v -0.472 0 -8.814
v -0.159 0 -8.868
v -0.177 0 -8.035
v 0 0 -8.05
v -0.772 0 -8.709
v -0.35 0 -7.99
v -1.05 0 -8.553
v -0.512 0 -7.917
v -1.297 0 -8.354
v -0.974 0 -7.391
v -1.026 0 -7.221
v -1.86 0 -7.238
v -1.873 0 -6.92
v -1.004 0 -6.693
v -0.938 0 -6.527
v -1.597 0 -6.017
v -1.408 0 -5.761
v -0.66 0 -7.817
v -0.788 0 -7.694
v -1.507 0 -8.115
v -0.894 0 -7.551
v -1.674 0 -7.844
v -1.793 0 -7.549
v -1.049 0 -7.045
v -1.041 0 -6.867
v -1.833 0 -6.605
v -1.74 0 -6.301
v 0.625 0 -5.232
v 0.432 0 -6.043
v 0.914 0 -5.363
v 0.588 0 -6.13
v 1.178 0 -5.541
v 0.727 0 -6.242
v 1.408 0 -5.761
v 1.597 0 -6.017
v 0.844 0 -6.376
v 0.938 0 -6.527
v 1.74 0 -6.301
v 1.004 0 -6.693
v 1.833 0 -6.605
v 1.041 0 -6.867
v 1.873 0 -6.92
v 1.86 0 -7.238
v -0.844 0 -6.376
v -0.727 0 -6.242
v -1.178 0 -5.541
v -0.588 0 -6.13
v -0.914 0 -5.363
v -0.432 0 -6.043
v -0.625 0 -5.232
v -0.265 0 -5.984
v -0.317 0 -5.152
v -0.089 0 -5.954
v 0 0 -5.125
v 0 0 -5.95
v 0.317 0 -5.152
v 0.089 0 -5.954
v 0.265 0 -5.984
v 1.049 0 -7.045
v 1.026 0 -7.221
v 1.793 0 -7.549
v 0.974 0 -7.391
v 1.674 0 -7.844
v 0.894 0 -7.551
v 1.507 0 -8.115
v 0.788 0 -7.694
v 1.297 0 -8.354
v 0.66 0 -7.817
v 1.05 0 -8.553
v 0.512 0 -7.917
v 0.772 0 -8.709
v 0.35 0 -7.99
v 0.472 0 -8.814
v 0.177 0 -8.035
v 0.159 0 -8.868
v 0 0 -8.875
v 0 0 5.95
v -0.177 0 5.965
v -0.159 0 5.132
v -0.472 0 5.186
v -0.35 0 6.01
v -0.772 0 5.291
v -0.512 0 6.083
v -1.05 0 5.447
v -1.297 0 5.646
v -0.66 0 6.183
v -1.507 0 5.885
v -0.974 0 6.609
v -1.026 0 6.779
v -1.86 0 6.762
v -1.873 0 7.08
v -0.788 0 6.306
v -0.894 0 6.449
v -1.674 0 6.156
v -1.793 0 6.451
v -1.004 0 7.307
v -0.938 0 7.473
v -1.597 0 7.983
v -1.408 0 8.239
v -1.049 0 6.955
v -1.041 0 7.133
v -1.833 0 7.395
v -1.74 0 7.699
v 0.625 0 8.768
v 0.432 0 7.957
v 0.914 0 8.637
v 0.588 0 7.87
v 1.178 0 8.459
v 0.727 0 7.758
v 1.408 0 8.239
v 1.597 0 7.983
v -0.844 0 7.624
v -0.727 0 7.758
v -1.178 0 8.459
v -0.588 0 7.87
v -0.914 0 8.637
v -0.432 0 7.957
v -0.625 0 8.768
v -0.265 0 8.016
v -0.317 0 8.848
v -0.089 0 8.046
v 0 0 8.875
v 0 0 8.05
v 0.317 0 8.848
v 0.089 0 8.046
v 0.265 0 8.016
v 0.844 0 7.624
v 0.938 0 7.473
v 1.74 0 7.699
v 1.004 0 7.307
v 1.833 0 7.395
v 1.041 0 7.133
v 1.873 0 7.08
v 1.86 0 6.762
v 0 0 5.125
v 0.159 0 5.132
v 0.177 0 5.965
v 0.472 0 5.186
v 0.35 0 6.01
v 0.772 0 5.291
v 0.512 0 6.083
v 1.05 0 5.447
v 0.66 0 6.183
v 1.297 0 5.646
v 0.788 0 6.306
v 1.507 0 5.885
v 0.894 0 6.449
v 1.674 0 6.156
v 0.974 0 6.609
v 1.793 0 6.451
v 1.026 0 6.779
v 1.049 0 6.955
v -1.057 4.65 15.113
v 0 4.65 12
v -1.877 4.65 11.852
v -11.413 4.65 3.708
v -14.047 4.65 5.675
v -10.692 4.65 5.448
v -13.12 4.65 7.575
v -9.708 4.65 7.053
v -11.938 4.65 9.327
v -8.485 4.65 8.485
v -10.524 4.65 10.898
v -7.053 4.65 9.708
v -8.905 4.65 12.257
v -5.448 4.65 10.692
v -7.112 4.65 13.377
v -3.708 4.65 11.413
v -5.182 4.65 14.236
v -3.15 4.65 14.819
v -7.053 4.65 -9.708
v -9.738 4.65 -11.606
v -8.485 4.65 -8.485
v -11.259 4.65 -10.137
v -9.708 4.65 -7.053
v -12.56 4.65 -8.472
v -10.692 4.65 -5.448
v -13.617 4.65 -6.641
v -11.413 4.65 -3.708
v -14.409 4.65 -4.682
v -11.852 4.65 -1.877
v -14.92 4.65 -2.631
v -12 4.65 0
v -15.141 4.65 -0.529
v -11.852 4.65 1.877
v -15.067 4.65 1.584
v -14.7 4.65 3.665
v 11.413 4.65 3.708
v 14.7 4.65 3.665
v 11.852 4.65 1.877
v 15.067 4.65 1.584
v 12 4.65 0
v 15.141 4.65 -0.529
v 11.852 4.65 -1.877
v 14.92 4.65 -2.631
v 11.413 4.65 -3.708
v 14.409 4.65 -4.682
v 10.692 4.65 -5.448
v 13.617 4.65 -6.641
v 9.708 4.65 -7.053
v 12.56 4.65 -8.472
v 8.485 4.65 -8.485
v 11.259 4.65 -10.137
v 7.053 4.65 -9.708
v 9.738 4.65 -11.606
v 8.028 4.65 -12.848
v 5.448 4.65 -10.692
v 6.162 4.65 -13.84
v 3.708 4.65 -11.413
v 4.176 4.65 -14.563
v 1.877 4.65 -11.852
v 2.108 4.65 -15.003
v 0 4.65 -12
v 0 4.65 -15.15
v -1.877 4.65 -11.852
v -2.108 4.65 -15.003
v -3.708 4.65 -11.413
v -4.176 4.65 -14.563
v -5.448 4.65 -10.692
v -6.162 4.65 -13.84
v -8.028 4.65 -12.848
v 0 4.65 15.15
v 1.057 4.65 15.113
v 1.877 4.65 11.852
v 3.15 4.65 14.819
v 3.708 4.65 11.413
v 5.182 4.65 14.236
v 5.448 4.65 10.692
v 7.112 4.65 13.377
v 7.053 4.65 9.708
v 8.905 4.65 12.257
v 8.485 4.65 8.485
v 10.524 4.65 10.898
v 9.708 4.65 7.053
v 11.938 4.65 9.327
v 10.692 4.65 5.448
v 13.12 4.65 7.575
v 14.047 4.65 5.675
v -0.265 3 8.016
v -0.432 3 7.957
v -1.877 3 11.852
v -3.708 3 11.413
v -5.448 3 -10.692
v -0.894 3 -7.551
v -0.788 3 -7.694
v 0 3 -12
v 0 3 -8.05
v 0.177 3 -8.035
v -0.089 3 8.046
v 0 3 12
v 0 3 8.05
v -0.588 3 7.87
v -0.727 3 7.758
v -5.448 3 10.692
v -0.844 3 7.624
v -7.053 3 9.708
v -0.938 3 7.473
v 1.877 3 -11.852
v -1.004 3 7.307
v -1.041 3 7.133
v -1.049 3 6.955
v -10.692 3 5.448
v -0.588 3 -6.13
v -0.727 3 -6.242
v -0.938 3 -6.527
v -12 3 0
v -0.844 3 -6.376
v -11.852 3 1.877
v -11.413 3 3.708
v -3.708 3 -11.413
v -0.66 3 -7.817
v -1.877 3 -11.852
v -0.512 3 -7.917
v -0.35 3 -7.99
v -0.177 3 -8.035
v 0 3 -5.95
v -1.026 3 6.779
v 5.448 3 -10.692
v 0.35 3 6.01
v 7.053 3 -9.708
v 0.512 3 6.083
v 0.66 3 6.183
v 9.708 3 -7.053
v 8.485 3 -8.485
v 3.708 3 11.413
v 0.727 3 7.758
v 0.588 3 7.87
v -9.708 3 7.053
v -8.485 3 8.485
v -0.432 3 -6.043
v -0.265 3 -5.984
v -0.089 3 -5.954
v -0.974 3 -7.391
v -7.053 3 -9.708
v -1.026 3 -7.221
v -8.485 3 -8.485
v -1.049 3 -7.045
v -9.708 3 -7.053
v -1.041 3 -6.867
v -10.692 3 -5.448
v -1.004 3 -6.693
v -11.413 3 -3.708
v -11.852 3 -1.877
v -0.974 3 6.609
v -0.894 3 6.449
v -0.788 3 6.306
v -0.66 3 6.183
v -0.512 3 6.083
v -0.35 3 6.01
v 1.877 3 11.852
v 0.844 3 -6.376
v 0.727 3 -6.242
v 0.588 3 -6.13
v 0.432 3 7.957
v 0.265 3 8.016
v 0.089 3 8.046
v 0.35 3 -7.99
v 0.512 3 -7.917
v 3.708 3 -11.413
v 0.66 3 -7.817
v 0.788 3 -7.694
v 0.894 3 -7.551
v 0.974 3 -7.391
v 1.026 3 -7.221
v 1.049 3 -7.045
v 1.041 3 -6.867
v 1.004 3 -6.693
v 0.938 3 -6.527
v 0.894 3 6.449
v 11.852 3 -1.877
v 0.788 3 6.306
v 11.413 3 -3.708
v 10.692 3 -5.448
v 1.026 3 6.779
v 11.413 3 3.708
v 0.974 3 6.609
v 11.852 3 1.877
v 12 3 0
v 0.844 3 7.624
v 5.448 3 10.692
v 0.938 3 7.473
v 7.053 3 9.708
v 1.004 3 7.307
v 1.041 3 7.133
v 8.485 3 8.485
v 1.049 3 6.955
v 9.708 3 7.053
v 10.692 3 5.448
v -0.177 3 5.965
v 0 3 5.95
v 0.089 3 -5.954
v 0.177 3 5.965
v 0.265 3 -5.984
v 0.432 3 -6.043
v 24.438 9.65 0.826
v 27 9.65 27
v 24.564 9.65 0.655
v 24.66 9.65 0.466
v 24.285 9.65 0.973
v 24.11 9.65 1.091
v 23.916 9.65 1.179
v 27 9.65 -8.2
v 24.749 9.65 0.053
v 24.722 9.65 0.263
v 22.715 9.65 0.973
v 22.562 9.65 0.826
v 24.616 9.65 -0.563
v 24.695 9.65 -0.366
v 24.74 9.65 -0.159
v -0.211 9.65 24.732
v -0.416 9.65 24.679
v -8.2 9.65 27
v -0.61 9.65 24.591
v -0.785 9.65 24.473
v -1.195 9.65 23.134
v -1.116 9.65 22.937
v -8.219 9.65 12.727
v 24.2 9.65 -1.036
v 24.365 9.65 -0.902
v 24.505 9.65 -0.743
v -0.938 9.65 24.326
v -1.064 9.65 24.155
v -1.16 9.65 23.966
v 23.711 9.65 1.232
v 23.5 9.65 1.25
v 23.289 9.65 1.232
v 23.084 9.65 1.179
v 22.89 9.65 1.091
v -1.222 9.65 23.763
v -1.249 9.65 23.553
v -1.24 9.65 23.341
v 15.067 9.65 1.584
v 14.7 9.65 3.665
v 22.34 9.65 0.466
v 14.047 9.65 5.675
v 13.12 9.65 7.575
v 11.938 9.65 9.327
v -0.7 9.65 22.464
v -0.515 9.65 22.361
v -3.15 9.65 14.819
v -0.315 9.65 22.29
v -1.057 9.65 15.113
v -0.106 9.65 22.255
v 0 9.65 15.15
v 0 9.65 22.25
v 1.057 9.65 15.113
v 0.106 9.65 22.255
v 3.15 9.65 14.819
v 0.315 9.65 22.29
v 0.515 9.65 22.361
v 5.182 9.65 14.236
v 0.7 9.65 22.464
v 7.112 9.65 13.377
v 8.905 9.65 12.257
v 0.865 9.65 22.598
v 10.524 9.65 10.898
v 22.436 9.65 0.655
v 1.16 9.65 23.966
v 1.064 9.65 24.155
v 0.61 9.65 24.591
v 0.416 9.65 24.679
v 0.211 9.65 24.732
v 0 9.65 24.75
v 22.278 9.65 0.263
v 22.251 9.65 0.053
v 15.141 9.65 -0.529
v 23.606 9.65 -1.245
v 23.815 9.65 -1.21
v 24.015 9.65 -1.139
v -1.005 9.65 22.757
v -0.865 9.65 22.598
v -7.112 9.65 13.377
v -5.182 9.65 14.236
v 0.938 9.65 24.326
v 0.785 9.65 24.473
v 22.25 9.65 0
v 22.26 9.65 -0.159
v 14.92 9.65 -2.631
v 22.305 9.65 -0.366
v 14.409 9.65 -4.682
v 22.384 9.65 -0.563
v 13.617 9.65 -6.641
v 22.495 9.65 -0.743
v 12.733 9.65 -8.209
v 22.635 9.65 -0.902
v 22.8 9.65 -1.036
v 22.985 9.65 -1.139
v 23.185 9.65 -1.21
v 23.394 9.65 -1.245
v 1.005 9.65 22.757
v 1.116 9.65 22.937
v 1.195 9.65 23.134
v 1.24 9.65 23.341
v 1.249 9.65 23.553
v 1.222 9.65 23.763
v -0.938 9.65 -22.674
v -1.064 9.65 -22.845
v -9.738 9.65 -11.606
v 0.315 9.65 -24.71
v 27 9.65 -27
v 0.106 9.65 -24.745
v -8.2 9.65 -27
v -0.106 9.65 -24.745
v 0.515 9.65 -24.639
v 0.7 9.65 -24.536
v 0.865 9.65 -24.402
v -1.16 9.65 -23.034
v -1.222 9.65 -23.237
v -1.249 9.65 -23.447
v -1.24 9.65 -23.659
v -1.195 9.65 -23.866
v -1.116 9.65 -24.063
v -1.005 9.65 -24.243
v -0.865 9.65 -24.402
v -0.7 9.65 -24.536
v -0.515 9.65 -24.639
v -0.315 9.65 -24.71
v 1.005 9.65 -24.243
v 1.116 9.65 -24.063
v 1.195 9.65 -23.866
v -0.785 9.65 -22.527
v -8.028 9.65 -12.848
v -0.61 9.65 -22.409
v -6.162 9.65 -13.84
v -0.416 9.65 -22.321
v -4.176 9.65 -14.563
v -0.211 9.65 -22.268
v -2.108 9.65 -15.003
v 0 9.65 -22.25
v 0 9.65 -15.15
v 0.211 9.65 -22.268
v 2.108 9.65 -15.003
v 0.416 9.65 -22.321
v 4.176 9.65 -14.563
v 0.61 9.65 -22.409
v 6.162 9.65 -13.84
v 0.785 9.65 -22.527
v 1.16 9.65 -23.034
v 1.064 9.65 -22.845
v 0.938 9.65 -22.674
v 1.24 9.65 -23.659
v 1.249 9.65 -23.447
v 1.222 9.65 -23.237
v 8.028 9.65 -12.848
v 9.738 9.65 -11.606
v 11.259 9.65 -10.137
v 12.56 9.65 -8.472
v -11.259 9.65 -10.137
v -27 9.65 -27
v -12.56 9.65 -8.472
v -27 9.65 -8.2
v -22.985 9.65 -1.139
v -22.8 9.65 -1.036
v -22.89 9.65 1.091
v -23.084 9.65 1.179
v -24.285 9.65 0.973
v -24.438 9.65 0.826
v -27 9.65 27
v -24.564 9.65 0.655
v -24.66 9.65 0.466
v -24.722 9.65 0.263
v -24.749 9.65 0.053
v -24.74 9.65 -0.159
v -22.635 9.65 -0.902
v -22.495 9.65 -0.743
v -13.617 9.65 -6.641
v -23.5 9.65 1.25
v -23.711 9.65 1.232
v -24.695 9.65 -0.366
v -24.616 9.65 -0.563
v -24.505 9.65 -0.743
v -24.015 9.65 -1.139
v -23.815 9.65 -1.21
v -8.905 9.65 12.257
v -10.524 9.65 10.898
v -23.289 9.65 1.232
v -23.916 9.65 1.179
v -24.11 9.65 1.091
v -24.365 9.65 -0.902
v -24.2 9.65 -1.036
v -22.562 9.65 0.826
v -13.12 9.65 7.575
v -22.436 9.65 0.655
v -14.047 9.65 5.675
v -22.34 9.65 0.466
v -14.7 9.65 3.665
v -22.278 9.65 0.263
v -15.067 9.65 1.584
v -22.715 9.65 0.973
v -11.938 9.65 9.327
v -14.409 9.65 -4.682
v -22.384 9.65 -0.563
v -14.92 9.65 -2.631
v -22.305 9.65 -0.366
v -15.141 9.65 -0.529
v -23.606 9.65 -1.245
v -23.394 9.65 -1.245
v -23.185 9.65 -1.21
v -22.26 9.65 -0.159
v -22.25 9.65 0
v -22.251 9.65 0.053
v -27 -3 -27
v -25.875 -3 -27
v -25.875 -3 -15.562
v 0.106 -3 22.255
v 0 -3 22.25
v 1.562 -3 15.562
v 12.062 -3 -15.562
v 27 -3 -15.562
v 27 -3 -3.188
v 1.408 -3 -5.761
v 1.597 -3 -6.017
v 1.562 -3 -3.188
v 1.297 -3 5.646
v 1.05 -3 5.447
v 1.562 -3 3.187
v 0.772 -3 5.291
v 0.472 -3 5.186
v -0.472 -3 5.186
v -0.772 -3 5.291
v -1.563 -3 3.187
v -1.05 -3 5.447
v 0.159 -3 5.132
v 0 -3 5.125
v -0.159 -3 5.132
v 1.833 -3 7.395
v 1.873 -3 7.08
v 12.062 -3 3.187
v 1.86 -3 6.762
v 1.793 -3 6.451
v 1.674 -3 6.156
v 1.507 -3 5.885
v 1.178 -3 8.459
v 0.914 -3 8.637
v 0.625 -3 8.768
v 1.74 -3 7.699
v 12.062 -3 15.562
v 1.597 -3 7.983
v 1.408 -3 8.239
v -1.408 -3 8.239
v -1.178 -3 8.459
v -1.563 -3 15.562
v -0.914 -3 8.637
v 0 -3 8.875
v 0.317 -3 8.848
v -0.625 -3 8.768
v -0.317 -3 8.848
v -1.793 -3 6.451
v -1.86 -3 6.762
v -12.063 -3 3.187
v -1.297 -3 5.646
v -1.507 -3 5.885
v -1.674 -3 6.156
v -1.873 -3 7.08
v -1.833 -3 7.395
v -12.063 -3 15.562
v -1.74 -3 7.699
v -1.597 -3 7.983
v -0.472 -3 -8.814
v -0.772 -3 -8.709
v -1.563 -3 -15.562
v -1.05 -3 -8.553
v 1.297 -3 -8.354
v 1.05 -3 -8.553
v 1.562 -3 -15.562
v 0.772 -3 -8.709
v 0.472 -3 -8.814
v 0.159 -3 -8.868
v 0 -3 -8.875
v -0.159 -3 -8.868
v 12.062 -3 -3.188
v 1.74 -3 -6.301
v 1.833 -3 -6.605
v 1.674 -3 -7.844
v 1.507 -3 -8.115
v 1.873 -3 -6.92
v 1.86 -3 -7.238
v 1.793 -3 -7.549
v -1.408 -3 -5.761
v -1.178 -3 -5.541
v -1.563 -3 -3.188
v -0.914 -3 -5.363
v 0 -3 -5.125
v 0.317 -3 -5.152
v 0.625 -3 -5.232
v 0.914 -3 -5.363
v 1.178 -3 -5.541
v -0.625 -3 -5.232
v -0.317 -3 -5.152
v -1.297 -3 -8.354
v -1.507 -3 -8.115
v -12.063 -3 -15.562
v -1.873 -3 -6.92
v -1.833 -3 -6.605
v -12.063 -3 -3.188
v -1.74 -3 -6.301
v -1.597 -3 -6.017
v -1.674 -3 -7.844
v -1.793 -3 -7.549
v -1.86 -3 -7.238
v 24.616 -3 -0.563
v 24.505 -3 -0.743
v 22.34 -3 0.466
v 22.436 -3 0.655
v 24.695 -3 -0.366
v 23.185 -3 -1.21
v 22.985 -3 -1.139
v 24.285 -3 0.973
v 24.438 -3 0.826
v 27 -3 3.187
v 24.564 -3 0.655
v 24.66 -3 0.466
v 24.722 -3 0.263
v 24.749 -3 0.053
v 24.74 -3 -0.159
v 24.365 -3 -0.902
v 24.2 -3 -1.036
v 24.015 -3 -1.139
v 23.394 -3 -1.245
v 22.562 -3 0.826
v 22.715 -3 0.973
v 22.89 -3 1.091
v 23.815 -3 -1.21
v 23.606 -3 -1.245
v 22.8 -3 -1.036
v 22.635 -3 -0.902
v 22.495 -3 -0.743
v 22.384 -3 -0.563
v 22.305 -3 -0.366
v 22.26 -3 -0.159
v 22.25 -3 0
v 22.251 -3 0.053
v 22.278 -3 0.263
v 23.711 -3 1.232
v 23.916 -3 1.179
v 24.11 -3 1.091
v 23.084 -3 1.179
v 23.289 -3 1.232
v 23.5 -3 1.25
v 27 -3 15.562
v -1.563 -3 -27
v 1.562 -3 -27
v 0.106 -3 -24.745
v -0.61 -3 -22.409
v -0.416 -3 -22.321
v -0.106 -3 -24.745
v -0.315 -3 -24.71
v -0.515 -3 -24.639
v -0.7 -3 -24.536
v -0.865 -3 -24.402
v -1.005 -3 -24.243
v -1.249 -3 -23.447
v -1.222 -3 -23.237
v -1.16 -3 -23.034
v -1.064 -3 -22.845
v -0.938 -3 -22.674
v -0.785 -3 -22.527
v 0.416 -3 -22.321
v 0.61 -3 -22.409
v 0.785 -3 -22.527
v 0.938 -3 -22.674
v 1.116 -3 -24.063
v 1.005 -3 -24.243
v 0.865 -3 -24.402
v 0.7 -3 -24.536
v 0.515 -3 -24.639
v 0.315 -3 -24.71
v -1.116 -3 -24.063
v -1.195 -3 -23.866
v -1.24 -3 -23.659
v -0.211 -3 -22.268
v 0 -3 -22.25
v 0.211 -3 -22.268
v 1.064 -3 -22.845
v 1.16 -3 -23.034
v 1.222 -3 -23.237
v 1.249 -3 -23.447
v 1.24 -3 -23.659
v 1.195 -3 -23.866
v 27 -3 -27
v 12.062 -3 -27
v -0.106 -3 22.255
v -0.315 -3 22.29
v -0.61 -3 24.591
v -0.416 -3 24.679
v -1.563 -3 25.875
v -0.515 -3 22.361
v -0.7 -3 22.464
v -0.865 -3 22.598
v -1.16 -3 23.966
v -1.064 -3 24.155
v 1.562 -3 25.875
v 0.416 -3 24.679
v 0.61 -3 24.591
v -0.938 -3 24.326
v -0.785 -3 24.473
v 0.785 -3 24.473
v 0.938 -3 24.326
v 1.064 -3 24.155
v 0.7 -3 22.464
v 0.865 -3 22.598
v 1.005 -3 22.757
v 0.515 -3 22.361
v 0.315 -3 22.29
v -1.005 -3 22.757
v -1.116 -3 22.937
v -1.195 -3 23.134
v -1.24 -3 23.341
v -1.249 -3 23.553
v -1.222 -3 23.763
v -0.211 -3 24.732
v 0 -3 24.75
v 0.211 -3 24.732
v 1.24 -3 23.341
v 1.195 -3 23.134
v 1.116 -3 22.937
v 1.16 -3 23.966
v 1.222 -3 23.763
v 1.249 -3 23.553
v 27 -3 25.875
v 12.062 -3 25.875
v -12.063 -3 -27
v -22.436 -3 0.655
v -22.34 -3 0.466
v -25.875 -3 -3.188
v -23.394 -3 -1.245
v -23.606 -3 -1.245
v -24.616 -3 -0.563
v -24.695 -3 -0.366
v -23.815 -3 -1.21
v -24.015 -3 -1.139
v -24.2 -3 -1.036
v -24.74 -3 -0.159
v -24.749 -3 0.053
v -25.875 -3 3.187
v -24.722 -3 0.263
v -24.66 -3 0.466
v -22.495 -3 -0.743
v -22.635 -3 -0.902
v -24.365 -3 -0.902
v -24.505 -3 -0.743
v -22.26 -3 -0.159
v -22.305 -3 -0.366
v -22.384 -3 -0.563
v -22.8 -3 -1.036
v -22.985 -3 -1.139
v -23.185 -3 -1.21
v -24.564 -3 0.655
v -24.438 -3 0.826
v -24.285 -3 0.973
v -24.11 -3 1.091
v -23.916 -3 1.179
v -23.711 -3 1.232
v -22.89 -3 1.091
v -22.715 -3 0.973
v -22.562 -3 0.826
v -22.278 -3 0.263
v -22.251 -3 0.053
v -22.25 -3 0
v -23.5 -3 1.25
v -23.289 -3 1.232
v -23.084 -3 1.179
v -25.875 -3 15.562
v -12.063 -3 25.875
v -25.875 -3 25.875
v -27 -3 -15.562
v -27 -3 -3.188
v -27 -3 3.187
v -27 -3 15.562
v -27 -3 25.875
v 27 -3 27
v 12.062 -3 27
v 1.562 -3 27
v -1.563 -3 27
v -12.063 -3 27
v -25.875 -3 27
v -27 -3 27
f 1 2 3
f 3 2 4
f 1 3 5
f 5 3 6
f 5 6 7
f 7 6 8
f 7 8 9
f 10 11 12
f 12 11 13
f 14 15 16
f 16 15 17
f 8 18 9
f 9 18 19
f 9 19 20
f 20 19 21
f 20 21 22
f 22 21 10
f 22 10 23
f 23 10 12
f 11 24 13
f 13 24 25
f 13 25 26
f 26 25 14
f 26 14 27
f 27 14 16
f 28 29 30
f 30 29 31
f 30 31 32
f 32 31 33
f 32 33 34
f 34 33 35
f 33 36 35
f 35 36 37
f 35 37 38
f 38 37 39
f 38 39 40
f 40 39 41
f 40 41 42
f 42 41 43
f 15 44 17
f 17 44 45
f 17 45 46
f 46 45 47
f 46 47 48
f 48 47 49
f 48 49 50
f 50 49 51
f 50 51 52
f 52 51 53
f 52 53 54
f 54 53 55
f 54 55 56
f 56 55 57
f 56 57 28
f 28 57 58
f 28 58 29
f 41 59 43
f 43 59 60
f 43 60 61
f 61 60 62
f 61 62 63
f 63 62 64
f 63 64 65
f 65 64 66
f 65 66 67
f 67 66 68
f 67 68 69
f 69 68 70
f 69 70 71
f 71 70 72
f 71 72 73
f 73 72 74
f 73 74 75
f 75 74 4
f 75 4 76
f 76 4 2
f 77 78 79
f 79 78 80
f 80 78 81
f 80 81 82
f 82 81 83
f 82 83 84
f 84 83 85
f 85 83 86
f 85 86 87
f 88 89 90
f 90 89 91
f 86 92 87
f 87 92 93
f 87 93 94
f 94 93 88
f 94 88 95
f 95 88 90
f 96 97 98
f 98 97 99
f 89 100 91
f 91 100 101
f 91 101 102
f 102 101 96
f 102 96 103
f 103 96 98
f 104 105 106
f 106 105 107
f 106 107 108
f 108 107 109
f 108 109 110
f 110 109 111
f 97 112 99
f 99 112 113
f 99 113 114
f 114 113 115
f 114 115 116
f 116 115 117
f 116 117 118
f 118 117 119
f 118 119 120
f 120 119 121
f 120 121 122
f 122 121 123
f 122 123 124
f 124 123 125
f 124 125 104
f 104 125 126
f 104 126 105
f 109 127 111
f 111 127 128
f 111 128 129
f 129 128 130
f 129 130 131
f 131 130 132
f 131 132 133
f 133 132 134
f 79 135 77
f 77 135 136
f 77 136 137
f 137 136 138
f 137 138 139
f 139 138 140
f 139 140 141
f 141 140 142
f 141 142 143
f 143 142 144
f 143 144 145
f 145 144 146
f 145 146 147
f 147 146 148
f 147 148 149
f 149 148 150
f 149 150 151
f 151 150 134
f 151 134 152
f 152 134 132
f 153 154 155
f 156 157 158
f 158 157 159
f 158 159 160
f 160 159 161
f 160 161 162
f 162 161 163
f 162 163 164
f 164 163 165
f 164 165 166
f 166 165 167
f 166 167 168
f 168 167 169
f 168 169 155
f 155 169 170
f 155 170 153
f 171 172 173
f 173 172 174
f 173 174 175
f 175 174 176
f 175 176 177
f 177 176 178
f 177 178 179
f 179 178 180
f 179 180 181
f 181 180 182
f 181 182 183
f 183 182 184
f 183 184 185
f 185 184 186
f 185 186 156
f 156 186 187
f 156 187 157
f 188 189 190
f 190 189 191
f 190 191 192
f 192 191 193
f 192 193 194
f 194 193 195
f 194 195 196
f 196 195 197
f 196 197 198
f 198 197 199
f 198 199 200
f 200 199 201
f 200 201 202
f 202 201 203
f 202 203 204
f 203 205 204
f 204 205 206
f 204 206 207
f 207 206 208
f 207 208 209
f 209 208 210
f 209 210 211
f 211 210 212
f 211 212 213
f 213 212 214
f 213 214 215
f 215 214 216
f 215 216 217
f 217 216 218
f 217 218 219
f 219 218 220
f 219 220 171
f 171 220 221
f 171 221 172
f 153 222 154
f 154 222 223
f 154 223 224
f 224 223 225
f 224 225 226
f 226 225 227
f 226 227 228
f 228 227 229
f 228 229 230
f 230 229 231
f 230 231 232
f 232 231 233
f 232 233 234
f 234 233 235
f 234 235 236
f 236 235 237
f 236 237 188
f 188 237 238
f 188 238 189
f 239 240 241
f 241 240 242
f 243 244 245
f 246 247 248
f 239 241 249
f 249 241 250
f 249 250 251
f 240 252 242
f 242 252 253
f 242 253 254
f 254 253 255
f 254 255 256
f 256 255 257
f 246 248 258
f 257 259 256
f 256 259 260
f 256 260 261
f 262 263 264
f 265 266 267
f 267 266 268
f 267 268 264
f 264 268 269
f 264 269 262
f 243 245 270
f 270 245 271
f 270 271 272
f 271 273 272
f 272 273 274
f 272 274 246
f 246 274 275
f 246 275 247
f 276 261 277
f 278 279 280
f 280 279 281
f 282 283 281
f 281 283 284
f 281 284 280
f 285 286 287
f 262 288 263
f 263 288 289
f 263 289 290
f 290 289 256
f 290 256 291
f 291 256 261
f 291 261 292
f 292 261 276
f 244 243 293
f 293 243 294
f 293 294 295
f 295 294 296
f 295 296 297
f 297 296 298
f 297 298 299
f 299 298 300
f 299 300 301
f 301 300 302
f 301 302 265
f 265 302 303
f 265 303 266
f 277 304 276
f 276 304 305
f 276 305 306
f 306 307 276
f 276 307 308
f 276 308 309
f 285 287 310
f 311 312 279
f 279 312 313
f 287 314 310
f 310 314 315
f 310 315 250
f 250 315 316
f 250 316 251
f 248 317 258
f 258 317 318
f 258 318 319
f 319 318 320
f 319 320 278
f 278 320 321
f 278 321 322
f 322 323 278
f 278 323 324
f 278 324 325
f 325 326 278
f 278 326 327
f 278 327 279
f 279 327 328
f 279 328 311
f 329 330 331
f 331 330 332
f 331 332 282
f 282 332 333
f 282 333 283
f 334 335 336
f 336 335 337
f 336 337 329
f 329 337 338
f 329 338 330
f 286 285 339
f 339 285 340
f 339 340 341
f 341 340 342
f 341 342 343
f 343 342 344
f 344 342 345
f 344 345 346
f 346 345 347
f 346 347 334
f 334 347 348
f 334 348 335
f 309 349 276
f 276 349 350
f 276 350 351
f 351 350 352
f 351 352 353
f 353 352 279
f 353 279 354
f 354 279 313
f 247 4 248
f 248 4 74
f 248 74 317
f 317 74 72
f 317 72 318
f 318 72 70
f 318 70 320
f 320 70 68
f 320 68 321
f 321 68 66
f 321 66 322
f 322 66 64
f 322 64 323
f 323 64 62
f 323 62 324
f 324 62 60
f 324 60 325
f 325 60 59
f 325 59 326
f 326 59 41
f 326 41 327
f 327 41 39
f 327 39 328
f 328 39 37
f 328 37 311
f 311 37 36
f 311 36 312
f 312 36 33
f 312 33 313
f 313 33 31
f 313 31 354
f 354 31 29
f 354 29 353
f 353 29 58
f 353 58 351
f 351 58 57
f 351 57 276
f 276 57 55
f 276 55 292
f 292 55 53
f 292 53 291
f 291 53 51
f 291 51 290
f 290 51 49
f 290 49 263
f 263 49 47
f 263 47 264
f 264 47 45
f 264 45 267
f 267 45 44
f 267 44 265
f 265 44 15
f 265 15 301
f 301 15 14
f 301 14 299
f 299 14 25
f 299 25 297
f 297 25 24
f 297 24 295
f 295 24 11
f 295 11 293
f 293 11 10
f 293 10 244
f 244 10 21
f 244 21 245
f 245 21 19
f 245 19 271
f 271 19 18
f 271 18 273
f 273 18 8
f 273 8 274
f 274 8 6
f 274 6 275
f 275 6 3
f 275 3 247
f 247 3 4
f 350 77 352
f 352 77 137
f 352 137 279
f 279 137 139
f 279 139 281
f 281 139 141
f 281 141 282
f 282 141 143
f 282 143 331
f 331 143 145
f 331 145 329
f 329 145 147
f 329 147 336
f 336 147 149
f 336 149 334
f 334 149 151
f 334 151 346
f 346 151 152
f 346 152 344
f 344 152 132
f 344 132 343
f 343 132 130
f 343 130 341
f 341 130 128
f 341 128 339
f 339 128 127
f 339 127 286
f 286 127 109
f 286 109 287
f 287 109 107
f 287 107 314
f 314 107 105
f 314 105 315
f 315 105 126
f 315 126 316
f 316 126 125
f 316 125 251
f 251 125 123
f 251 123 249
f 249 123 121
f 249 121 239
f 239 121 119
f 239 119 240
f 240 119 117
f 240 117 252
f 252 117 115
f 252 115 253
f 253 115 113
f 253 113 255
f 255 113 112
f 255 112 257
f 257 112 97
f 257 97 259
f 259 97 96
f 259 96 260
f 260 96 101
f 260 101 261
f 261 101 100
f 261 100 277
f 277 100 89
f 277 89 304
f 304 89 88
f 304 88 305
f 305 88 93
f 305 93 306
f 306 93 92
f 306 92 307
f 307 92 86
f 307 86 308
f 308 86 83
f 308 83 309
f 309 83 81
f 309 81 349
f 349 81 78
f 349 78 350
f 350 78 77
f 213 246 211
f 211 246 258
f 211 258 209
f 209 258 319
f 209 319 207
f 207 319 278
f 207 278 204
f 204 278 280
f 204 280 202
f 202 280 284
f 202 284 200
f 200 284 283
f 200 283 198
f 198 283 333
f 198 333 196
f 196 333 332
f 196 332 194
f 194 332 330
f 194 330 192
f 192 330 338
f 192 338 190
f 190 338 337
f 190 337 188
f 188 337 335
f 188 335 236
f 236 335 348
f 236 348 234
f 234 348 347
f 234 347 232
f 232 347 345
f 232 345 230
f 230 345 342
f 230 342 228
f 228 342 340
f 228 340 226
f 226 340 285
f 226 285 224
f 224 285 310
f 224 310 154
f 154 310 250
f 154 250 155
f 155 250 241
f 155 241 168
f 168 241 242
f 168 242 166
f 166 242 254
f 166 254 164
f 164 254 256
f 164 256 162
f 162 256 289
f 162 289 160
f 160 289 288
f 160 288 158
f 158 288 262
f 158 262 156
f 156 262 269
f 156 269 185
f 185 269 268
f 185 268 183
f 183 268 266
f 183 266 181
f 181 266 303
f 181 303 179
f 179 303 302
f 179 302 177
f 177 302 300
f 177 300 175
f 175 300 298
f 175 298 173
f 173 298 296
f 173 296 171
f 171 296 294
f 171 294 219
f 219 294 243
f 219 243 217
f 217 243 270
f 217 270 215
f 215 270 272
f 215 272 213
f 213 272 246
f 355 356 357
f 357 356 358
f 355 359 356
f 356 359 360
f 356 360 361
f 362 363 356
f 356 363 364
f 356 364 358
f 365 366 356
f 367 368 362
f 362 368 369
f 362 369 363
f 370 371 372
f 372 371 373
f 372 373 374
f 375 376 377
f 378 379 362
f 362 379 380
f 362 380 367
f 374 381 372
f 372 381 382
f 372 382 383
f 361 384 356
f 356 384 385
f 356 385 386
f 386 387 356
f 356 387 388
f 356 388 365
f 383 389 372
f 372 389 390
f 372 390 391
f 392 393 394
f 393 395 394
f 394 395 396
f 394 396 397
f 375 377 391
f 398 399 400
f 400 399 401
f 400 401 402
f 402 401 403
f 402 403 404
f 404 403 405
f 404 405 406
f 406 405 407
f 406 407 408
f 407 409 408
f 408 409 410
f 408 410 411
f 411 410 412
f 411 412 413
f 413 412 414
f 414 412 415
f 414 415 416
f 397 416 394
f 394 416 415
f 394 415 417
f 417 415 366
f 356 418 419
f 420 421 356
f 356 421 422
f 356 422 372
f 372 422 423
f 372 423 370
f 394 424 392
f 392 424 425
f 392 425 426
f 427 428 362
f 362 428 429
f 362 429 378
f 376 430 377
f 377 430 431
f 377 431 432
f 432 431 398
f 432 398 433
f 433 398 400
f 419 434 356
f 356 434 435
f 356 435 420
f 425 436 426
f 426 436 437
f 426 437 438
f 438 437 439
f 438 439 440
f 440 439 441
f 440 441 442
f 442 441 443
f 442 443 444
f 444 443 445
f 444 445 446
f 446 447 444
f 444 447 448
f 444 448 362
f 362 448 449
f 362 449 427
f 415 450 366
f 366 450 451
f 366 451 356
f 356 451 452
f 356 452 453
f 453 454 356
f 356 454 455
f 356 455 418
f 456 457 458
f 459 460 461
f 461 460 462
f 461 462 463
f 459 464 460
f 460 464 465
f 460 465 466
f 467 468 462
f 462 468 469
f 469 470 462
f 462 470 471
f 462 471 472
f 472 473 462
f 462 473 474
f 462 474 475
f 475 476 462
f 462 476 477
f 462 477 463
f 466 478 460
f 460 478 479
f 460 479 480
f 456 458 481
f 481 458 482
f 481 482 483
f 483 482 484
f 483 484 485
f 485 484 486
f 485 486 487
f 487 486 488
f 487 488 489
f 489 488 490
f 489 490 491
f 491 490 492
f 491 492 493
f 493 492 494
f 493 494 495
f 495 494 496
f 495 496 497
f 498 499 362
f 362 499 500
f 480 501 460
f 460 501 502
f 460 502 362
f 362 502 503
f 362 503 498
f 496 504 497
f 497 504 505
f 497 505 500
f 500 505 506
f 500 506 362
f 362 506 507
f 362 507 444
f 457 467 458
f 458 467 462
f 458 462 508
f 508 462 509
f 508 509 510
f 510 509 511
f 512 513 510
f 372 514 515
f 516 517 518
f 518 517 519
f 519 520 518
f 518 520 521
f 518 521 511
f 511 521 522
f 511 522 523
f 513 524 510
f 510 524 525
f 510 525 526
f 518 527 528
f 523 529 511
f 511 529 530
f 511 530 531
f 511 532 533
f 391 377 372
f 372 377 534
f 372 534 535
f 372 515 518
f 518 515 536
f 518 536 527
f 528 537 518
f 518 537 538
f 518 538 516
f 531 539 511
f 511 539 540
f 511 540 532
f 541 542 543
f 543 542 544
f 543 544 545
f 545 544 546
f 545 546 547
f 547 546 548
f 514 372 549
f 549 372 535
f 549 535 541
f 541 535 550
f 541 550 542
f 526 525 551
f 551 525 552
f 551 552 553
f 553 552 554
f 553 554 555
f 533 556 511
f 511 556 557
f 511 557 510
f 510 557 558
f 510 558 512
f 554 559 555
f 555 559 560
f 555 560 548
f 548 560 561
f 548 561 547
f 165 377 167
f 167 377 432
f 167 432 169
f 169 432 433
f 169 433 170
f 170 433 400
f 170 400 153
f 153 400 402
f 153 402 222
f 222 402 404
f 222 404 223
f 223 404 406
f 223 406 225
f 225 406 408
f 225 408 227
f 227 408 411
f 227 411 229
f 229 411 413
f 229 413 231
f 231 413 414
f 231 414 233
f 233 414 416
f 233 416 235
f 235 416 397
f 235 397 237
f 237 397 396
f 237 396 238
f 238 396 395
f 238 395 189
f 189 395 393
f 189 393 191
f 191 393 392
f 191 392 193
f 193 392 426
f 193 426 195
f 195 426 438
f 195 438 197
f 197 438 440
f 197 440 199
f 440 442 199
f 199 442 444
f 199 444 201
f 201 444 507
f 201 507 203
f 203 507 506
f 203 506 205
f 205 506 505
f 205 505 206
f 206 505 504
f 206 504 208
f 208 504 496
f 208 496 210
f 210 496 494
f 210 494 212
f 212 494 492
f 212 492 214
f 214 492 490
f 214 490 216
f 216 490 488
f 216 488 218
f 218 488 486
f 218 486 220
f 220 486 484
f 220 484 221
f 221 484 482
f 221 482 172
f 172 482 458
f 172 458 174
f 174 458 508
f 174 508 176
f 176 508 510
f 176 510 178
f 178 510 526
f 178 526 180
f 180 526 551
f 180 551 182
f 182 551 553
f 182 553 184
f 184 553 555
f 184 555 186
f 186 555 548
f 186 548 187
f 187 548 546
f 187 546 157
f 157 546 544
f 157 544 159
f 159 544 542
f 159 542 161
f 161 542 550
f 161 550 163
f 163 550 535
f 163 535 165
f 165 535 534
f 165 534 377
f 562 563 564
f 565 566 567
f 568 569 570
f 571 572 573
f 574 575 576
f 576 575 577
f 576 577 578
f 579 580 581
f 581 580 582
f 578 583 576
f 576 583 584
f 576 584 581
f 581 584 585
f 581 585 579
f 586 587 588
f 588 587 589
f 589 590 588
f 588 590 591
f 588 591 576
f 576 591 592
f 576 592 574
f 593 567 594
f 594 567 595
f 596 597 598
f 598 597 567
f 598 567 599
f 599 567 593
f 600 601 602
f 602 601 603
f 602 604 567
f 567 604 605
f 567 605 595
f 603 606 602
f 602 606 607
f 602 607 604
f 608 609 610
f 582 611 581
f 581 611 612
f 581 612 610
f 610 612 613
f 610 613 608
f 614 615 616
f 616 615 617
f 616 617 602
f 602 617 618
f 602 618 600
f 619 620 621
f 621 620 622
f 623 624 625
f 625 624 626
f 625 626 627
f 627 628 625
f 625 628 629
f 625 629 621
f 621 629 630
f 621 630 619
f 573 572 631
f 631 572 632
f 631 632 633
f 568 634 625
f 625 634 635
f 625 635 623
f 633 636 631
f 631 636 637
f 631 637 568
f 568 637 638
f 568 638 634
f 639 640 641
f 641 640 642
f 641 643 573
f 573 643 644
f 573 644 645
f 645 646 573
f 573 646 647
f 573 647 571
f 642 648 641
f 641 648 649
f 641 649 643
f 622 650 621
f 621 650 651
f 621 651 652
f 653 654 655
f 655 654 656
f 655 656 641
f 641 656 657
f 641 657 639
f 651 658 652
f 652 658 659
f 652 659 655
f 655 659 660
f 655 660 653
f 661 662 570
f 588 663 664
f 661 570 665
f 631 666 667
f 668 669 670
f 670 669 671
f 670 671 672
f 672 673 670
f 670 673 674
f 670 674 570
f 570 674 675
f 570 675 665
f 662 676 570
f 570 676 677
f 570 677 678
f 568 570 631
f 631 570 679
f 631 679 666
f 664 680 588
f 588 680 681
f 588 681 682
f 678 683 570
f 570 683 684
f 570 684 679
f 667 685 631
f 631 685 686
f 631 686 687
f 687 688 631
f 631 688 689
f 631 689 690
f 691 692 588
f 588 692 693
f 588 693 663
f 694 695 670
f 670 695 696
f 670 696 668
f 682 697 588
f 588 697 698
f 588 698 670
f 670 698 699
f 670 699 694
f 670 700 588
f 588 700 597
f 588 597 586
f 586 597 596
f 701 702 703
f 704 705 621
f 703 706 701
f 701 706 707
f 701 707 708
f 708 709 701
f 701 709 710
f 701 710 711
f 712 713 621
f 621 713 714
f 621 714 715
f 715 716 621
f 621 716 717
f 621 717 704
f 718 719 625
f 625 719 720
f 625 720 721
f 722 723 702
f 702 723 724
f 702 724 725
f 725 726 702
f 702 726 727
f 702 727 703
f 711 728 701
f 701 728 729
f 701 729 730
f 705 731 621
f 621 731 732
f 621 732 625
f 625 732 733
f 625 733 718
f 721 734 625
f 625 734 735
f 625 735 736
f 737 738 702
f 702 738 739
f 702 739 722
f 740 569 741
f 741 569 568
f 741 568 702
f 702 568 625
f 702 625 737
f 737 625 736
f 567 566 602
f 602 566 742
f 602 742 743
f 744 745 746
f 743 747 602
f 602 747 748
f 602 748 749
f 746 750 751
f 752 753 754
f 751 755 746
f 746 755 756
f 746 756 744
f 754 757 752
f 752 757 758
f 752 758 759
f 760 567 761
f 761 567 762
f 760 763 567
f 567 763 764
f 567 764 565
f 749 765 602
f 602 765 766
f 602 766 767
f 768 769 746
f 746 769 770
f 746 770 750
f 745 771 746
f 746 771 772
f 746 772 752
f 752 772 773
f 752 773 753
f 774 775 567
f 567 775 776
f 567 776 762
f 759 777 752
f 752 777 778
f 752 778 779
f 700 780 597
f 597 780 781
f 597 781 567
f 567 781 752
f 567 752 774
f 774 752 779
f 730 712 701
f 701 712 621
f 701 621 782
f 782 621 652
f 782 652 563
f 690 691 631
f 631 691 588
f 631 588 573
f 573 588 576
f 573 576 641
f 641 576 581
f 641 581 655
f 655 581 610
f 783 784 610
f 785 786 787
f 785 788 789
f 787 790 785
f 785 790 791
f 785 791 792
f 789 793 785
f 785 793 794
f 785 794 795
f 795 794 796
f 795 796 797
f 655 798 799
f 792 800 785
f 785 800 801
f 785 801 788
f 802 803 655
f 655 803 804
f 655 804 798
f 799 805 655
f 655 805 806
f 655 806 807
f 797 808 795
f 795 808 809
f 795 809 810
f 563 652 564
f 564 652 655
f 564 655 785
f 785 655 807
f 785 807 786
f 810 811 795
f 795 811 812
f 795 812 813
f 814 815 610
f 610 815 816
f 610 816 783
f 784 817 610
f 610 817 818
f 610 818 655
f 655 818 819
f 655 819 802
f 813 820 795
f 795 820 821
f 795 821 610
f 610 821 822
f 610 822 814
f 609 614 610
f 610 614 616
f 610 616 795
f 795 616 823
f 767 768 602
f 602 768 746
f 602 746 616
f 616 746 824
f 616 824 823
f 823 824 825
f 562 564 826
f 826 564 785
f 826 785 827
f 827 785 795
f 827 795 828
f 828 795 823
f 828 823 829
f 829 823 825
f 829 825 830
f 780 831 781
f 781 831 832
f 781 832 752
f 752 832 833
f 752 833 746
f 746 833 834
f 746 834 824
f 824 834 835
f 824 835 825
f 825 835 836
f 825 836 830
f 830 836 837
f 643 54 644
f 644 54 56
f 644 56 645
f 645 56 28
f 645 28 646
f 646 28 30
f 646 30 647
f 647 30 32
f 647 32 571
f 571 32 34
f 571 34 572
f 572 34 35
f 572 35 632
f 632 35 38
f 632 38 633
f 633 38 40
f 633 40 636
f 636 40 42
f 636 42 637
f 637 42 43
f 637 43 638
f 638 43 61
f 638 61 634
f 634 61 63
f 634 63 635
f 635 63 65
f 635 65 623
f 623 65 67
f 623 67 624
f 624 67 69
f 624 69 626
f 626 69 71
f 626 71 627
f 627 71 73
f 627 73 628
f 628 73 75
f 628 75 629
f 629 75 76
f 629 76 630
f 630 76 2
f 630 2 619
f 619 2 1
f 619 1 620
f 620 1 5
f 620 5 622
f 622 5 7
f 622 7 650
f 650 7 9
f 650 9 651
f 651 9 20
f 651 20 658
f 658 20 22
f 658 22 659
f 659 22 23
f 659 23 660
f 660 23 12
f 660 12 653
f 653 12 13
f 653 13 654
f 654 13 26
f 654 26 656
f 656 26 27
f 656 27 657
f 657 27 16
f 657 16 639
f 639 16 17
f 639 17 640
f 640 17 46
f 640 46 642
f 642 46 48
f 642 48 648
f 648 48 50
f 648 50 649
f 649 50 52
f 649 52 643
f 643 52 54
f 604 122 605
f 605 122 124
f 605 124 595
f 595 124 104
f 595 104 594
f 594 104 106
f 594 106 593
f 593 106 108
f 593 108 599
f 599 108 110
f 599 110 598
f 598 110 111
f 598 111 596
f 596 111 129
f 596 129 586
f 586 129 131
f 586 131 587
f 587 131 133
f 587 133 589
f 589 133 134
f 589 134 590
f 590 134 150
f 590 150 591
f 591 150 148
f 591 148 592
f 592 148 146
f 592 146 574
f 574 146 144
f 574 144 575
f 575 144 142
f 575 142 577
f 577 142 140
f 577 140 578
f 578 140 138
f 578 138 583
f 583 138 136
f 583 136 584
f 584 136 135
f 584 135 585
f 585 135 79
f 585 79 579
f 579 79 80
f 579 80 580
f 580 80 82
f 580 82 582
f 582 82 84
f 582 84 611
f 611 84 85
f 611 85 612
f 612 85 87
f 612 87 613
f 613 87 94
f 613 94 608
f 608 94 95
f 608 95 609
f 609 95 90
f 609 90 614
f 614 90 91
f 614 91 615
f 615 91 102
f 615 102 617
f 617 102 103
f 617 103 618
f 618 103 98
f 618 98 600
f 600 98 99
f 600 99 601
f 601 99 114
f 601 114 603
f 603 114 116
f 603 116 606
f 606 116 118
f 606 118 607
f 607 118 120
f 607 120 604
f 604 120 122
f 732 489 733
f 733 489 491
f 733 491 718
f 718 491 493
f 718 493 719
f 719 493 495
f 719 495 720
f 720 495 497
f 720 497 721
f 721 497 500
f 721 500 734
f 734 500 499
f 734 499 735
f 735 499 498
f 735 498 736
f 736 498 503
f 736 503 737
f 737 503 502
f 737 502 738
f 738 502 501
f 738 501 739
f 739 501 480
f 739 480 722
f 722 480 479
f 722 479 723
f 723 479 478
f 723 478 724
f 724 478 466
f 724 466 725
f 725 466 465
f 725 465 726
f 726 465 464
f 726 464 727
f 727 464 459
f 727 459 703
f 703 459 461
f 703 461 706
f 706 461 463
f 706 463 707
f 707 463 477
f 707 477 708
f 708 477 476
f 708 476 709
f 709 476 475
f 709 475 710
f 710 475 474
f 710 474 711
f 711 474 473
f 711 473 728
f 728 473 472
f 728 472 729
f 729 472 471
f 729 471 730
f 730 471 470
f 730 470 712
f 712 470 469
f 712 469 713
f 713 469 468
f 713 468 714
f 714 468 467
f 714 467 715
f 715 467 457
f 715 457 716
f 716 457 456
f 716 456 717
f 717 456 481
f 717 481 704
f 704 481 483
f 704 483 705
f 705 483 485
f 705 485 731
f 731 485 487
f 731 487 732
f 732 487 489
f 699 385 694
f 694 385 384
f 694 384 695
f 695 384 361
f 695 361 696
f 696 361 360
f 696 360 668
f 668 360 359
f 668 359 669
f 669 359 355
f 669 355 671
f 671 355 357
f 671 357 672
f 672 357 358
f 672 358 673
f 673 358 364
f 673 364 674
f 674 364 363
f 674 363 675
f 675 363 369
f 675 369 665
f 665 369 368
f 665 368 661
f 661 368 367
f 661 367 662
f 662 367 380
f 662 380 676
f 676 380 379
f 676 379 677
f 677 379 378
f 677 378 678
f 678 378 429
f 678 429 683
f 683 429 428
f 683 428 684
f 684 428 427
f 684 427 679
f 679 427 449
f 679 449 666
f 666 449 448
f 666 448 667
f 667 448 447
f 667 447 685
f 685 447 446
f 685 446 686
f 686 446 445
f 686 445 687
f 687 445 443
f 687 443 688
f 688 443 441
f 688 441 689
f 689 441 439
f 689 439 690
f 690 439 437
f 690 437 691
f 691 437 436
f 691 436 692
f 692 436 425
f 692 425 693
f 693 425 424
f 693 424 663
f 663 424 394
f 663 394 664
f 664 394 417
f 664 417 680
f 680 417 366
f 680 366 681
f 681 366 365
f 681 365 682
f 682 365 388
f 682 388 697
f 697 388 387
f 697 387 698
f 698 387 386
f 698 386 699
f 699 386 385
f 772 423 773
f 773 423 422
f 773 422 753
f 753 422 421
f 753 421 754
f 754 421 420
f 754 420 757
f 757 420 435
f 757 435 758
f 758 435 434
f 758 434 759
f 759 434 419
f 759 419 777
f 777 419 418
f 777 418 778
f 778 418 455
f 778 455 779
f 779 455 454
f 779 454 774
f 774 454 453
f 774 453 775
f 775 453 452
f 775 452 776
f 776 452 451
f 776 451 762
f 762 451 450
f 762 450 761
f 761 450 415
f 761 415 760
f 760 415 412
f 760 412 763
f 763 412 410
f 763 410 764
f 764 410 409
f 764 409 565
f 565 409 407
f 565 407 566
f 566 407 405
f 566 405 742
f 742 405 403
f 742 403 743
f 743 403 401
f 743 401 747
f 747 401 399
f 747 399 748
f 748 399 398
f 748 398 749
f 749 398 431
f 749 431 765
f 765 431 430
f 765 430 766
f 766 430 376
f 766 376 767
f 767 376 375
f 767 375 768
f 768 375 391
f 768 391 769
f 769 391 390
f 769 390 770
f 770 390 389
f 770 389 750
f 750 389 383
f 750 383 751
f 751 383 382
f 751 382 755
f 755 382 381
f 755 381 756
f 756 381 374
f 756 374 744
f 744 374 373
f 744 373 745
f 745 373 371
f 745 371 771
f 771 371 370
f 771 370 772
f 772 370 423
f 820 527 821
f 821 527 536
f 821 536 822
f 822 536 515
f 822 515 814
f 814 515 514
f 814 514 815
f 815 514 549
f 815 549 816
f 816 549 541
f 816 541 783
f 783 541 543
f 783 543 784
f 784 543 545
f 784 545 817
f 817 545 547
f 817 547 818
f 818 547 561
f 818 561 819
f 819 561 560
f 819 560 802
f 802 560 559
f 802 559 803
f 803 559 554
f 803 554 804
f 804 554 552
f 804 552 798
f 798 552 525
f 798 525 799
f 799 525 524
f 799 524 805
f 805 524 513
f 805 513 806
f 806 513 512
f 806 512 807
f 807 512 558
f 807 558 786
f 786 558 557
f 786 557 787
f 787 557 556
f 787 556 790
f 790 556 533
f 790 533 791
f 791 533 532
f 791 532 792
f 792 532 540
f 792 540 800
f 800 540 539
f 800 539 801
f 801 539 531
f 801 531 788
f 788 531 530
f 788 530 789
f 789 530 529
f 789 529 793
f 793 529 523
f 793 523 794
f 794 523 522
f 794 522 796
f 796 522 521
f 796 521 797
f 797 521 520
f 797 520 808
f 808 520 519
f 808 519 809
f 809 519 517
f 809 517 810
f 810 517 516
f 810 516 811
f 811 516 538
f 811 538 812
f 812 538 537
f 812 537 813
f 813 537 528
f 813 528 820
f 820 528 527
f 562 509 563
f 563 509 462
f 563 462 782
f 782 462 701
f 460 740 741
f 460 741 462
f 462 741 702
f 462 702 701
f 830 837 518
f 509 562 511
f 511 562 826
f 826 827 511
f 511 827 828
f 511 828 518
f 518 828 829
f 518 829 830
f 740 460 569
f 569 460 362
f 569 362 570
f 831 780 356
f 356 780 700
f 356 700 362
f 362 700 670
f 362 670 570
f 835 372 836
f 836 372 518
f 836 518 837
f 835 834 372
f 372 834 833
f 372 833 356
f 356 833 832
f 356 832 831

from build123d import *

# Parameters (mm, degrees)
SKETCH1_R                       = 27
SKETCH1_R_2                     = 1.05
BOSS_EXTRUDE1_DEPTH             = 3
SKETCH2_R                       = 27
SKETCH2_R_2                     = 12
BOSS_EXTRUDE2_DEPTH             = 1.65
SKETCH3_R                       = 27
SKETCH3_R_2                     = 15.15
BOSS_EXTRUDE3_DEPTH             = 5
BOSS_EXTRUDE4_START             = 3
SKETCH4_R                       = 27
SKETCH4_R_2                     = 1.875
BOSS_EXTRUDE4_DEPTH             = 3
SKETCH6_R                       = 1.25
CUT_EXTRUDE2_DEPTH              = 41.224650402
CIRPATTERN2_COUNT               = 4
BOSS_EXTRUDE5_REACH             = 41.384
BOSS_EXTRUDE5_DIRECTION_2_REACH = 41.384


with BuildPart() as part:
    # Sketch1 → Boss-Extrude1 (new body)
    with BuildSketch(Plane(origin=(0, 0, 0), x_dir=(1, 0, 0), z_dir=(0, 1, 0))):
        with Locations(Location((0, 0, 0), (0, 0, 270))):
            Circle(SKETCH1_R)
        with Locations(Location((0, 7, 0), (0, 0, 270))):
            Circle(SKETCH1_R_2, mode=Mode.SUBTRACT)
        with Locations(Location((0, -7, 0), (0, 0, 270))):
            Circle(SKETCH1_R_2, mode=Mode.SUBTRACT)
    extrude(amount=BOSS_EXTRUDE1_DEPTH)

    # Sketch2 → Boss-Extrude2 (add)
    with BuildSketch(Plane(origin=(0, 3, 0), x_dir=(1, 0, 0), z_dir=(0, 1, 0))):
        with Locations(Location((0, 0, 0), (0, 0, 270))):
            Circle(SKETCH2_R)
        with Locations(Location((0, 0, 0), (0, 0, 270))):
            Circle(SKETCH2_R_2, mode=Mode.SUBTRACT)
    extrude(amount=BOSS_EXTRUDE2_DEPTH)

    # Sketch3 → Boss-Extrude3 (add)
    with BuildSketch(Plane(origin=(0, 4.65, 0), x_dir=(1, 0, 0), z_dir=(0, 1, 0))):
        with Locations(Location((0, 0, 0), (0, 0, 270))):
            Circle(SKETCH3_R)
        with Locations(Location((0, 0, 0), (0, 0, 270))):
            Circle(SKETCH3_R_2, mode=Mode.SUBTRACT)
    extrude(amount=BOSS_EXTRUDE3_DEPTH)

    # Sketch4 → Boss-Extrude4 (add)
    with BuildSketch(Plane.XZ.offset(BOSS_EXTRUDE4_START)):
        with Locations(Location((0, 0, 0), (0, 0, 270))):
            Circle(SKETCH4_R)
        with Locations(Location((0, -7, 0), (0, 0, 270))):
            Circle(SKETCH4_R_2, mode=Mode.SUBTRACT)
        with Locations(Location((0, 7, 0), (0, 0, 270))):
            Circle(SKETCH4_R_2, mode=Mode.SUBTRACT)
    extrude(amount=-BOSS_EXTRUDE4_DEPTH)

    # Sketch6 → Cut-Extrude2 (cut, through all)
    with BuildSketch(Plane(origin=(0, 9.65, 0), x_dir=(1, 0, 0), z_dir=(0, 1, 0))):
        with Locations(Location((0, 23.5, 0), (0, 0, 270))):
            Circle(SKETCH6_R)
    cut_extrude2 = extrude(amount=-CUT_EXTRUDE2_DEPTH, mode=Mode.SUBTRACT)

    # CirPattern2: Cut-Extrude2 ×4 about axis
    cirpattern2_axis = Axis((0, 0, 0), (0, 1, 0))
    for i in range(1, CIRPATTERN2_COUNT):
        add(cut_extrude2.rotate(cirpattern2_axis, i * 360 / CIRPATTERN2_COUNT), mode=Mode.SUBTRACT)

    # Boss-Extrude5: up to this face of the body (flat: up to its plane)
    boss_extrude5_end = Plane(part.part.faces().sort_by_distance((0, 9.65, -26.236324676))[0])
    # Sketch7 → Boss-Extrude5 (add, up to the picked face)
    with BuildSketch(Plane(origin=(0, 0, 0), x_dir=(1, 0, 0), z_dir=(0, 1, 0)), mode=Mode.PRIVATE) as boss_extrude5_sk1:
        with BuildLine():
            Line((0, 27), (-27, 27))
            Line((-27, 27), (-27, 0))
            ThreePointArc((-27, 0), (-19.091883092, 19.091883092), (0, 27))
        make_face()
    boss_extrude5_tool1 = split(extrude(boss_extrude5_sk1.sketch, amount=BOSS_EXTRUDE5_REACH, mode=Mode.PRIVATE), bisect_by=boss_extrude5_end, keep=Keep.BOTH, mode=Mode.PRIVATE)
    # Sketch7 → Boss-Extrude5 (add, up to the picked face)
    with BuildSketch(Plane(origin=(0, 0, 0), x_dir=(1, 0, 0), z_dir=(0, 1, 0)), mode=Mode.PRIVATE) as boss_extrude5_sk2:
        with BuildLine():
            Line((27, 27), (0, 27))
            ThreePointArc((0, 27), (19.091883092, 19.091883092), (27, 0))
            Line((27, 0), (27, 27))
        make_face()
    boss_extrude5_tool2 = split(extrude(boss_extrude5_sk2.sketch, amount=BOSS_EXTRUDE5_REACH, mode=Mode.PRIVATE), bisect_by=boss_extrude5_end, keep=Keep.BOTH, mode=Mode.PRIVATE)
    # Sketch7 → Boss-Extrude5 (add, up to the picked face)
    with BuildSketch(Plane(origin=(0, 0, 0), x_dir=(1, 0, 0), z_dir=(0, 1, 0)), mode=Mode.PRIVATE) as boss_extrude5_sk3:
        with BuildLine():
            Line((27, -27), (27, 0))
            ThreePointArc((27, 0), (19.091883057, -19.091883127), (-9.8e-08, -27))
            Line((-9.8e-08, -27), (27, -27))
        make_face()
    boss_extrude5_tool3 = split(extrude(boss_extrude5_sk3.sketch, amount=BOSS_EXTRUDE5_REACH, mode=Mode.PRIVATE), bisect_by=boss_extrude5_end, keep=Keep.BOTH, mode=Mode.PRIVATE)
    # Sketch7 → Boss-Extrude5 (add, up to the picked face)
    with BuildSketch(Plane(origin=(0, 0, 0), x_dir=(1, 0, 0), z_dir=(0, 1, 0)), mode=Mode.PRIVATE) as boss_extrude5_sk4:
        with BuildLine():
            ThreePointArc((-9.8e-08, -27), (-19.091883127, -19.091883057), (-27, 0))
            Line((-27, 0), (-27, -27))
            Line((-27, -27), (-9.8e-08, -27))
        make_face()
    boss_extrude5_tool4 = split(extrude(boss_extrude5_sk4.sketch, amount=BOSS_EXTRUDE5_REACH, mode=Mode.PRIVATE), bisect_by=boss_extrude5_end, keep=Keep.BOTH, mode=Mode.PRIVATE)
    add(boss_extrude5_tool1.solids().sort_by(Axis((-20.969066, 0, -20.969066), (0, 1, 0)))[0])
    add(boss_extrude5_tool2.solids().sort_by(Axis((20.969066, 0, -20.969066), (0, 1, 0)))[0])
    add(boss_extrude5_tool3.solids().sort_by(Axis((20.969066, 0, 20.969066), (0, 1, 0)))[0])
    add(boss_extrude5_tool4.solids().sort_by(Axis((-20.969066, 0, 20.969066), (0, 1, 0)))[0])

    # Boss-Extrude5 direction 2: up to this face of the body (flat: up to its plane)
    boss_extrude5_direction_2_end = Plane(part.part.faces().sort_by_distance((0, -3, 0))[0])
    # Sketch7 → Boss-Extrude5 direction 2 (add, up to the picked face)
    with BuildSketch(Plane(origin=(0, 0, 0), x_dir=(1, 0, 0), z_dir=(0, 1, 0)), mode=Mode.PRIVATE) as boss_extrude5_direction_2_sk1:
        with BuildLine():
            Line((0, 27), (-27, 27))
            Line((-27, 27), (-27, 0))
            ThreePointArc((-27, 0), (-19.091883092, 19.091883092), (0, 27))
        make_face()
    boss_extrude5_direction_2_tool1 = split(extrude(boss_extrude5_direction_2_sk1.sketch, amount=-BOSS_EXTRUDE5_DIRECTION_2_REACH, mode=Mode.PRIVATE), bisect_by=boss_extrude5_direction_2_end, keep=Keep.BOTH, mode=Mode.PRIVATE)
    # Sketch7 → Boss-Extrude5 direction 2 (add, up to the picked face)
    with BuildSketch(Plane(origin=(0, 0, 0), x_dir=(1, 0, 0), z_dir=(0, 1, 0)), mode=Mode.PRIVATE) as boss_extrude5_direction_2_sk2:
        with BuildLine():
            Line((27, 27), (0, 27))
            ThreePointArc((0, 27), (19.091883092, 19.091883092), (27, 0))
            Line((27, 0), (27, 27))
        make_face()
    boss_extrude5_direction_2_tool2 = split(extrude(boss_extrude5_direction_2_sk2.sketch, amount=-BOSS_EXTRUDE5_DIRECTION_2_REACH, mode=Mode.PRIVATE), bisect_by=boss_extrude5_direction_2_end, keep=Keep.BOTH, mode=Mode.PRIVATE)
    # Sketch7 → Boss-Extrude5 direction 2 (add, up to the picked face)
    with BuildSketch(Plane(origin=(0, 0, 0), x_dir=(1, 0, 0), z_dir=(0, 1, 0)), mode=Mode.PRIVATE) as boss_extrude5_direction_2_sk3:
        with BuildLine():
            Line((27, -27), (27, 0))
            ThreePointArc((27, 0), (19.091883057, -19.091883127), (-9.8e-08, -27))
            Line((-9.8e-08, -27), (27, -27))
        make_face()
    boss_extrude5_direction_2_tool3 = split(extrude(boss_extrude5_direction_2_sk3.sketch, amount=-BOSS_EXTRUDE5_DIRECTION_2_REACH, mode=Mode.PRIVATE), bisect_by=boss_extrude5_direction_2_end, keep=Keep.BOTH, mode=Mode.PRIVATE)
    # Sketch7 → Boss-Extrude5 direction 2 (add, up to the picked face)
    with BuildSketch(Plane(origin=(0, 0, 0), x_dir=(1, 0, 0), z_dir=(0, 1, 0)), mode=Mode.PRIVATE) as boss_extrude5_direction_2_sk4:
        with BuildLine():
            ThreePointArc((-9.8e-08, -27), (-19.091883127, -19.091883057), (-27, 0))
            Line((-27, 0), (-27, -27))
            Line((-27, -27), (-9.8e-08, -27))
        make_face()
    boss_extrude5_direction_2_tool4 = split(extrude(boss_extrude5_direction_2_sk4.sketch, amount=-BOSS_EXTRUDE5_DIRECTION_2_REACH, mode=Mode.PRIVATE), bisect_by=boss_extrude5_direction_2_end, keep=Keep.BOTH, mode=Mode.PRIVATE)
    add(boss_extrude5_direction_2_tool1.solids().sort_by(Axis((-20.969066, 0, -20.969066), (0, -1, 0)))[0])
    add(boss_extrude5_direction_2_tool2.solids().sort_by(Axis((20.969066, 0, -20.969066), (0, -1, 0)))[0])
    add(boss_extrude5_direction_2_tool3.solids().sort_by(Axis((20.969066, 0, 20.969066), (0, -1, 0)))[0])
    add(boss_extrude5_direction_2_tool4.solids().sort_by(Axis((-20.969066, 0, 20.969066), (0, -1, 0)))[0])


solid = part.part
